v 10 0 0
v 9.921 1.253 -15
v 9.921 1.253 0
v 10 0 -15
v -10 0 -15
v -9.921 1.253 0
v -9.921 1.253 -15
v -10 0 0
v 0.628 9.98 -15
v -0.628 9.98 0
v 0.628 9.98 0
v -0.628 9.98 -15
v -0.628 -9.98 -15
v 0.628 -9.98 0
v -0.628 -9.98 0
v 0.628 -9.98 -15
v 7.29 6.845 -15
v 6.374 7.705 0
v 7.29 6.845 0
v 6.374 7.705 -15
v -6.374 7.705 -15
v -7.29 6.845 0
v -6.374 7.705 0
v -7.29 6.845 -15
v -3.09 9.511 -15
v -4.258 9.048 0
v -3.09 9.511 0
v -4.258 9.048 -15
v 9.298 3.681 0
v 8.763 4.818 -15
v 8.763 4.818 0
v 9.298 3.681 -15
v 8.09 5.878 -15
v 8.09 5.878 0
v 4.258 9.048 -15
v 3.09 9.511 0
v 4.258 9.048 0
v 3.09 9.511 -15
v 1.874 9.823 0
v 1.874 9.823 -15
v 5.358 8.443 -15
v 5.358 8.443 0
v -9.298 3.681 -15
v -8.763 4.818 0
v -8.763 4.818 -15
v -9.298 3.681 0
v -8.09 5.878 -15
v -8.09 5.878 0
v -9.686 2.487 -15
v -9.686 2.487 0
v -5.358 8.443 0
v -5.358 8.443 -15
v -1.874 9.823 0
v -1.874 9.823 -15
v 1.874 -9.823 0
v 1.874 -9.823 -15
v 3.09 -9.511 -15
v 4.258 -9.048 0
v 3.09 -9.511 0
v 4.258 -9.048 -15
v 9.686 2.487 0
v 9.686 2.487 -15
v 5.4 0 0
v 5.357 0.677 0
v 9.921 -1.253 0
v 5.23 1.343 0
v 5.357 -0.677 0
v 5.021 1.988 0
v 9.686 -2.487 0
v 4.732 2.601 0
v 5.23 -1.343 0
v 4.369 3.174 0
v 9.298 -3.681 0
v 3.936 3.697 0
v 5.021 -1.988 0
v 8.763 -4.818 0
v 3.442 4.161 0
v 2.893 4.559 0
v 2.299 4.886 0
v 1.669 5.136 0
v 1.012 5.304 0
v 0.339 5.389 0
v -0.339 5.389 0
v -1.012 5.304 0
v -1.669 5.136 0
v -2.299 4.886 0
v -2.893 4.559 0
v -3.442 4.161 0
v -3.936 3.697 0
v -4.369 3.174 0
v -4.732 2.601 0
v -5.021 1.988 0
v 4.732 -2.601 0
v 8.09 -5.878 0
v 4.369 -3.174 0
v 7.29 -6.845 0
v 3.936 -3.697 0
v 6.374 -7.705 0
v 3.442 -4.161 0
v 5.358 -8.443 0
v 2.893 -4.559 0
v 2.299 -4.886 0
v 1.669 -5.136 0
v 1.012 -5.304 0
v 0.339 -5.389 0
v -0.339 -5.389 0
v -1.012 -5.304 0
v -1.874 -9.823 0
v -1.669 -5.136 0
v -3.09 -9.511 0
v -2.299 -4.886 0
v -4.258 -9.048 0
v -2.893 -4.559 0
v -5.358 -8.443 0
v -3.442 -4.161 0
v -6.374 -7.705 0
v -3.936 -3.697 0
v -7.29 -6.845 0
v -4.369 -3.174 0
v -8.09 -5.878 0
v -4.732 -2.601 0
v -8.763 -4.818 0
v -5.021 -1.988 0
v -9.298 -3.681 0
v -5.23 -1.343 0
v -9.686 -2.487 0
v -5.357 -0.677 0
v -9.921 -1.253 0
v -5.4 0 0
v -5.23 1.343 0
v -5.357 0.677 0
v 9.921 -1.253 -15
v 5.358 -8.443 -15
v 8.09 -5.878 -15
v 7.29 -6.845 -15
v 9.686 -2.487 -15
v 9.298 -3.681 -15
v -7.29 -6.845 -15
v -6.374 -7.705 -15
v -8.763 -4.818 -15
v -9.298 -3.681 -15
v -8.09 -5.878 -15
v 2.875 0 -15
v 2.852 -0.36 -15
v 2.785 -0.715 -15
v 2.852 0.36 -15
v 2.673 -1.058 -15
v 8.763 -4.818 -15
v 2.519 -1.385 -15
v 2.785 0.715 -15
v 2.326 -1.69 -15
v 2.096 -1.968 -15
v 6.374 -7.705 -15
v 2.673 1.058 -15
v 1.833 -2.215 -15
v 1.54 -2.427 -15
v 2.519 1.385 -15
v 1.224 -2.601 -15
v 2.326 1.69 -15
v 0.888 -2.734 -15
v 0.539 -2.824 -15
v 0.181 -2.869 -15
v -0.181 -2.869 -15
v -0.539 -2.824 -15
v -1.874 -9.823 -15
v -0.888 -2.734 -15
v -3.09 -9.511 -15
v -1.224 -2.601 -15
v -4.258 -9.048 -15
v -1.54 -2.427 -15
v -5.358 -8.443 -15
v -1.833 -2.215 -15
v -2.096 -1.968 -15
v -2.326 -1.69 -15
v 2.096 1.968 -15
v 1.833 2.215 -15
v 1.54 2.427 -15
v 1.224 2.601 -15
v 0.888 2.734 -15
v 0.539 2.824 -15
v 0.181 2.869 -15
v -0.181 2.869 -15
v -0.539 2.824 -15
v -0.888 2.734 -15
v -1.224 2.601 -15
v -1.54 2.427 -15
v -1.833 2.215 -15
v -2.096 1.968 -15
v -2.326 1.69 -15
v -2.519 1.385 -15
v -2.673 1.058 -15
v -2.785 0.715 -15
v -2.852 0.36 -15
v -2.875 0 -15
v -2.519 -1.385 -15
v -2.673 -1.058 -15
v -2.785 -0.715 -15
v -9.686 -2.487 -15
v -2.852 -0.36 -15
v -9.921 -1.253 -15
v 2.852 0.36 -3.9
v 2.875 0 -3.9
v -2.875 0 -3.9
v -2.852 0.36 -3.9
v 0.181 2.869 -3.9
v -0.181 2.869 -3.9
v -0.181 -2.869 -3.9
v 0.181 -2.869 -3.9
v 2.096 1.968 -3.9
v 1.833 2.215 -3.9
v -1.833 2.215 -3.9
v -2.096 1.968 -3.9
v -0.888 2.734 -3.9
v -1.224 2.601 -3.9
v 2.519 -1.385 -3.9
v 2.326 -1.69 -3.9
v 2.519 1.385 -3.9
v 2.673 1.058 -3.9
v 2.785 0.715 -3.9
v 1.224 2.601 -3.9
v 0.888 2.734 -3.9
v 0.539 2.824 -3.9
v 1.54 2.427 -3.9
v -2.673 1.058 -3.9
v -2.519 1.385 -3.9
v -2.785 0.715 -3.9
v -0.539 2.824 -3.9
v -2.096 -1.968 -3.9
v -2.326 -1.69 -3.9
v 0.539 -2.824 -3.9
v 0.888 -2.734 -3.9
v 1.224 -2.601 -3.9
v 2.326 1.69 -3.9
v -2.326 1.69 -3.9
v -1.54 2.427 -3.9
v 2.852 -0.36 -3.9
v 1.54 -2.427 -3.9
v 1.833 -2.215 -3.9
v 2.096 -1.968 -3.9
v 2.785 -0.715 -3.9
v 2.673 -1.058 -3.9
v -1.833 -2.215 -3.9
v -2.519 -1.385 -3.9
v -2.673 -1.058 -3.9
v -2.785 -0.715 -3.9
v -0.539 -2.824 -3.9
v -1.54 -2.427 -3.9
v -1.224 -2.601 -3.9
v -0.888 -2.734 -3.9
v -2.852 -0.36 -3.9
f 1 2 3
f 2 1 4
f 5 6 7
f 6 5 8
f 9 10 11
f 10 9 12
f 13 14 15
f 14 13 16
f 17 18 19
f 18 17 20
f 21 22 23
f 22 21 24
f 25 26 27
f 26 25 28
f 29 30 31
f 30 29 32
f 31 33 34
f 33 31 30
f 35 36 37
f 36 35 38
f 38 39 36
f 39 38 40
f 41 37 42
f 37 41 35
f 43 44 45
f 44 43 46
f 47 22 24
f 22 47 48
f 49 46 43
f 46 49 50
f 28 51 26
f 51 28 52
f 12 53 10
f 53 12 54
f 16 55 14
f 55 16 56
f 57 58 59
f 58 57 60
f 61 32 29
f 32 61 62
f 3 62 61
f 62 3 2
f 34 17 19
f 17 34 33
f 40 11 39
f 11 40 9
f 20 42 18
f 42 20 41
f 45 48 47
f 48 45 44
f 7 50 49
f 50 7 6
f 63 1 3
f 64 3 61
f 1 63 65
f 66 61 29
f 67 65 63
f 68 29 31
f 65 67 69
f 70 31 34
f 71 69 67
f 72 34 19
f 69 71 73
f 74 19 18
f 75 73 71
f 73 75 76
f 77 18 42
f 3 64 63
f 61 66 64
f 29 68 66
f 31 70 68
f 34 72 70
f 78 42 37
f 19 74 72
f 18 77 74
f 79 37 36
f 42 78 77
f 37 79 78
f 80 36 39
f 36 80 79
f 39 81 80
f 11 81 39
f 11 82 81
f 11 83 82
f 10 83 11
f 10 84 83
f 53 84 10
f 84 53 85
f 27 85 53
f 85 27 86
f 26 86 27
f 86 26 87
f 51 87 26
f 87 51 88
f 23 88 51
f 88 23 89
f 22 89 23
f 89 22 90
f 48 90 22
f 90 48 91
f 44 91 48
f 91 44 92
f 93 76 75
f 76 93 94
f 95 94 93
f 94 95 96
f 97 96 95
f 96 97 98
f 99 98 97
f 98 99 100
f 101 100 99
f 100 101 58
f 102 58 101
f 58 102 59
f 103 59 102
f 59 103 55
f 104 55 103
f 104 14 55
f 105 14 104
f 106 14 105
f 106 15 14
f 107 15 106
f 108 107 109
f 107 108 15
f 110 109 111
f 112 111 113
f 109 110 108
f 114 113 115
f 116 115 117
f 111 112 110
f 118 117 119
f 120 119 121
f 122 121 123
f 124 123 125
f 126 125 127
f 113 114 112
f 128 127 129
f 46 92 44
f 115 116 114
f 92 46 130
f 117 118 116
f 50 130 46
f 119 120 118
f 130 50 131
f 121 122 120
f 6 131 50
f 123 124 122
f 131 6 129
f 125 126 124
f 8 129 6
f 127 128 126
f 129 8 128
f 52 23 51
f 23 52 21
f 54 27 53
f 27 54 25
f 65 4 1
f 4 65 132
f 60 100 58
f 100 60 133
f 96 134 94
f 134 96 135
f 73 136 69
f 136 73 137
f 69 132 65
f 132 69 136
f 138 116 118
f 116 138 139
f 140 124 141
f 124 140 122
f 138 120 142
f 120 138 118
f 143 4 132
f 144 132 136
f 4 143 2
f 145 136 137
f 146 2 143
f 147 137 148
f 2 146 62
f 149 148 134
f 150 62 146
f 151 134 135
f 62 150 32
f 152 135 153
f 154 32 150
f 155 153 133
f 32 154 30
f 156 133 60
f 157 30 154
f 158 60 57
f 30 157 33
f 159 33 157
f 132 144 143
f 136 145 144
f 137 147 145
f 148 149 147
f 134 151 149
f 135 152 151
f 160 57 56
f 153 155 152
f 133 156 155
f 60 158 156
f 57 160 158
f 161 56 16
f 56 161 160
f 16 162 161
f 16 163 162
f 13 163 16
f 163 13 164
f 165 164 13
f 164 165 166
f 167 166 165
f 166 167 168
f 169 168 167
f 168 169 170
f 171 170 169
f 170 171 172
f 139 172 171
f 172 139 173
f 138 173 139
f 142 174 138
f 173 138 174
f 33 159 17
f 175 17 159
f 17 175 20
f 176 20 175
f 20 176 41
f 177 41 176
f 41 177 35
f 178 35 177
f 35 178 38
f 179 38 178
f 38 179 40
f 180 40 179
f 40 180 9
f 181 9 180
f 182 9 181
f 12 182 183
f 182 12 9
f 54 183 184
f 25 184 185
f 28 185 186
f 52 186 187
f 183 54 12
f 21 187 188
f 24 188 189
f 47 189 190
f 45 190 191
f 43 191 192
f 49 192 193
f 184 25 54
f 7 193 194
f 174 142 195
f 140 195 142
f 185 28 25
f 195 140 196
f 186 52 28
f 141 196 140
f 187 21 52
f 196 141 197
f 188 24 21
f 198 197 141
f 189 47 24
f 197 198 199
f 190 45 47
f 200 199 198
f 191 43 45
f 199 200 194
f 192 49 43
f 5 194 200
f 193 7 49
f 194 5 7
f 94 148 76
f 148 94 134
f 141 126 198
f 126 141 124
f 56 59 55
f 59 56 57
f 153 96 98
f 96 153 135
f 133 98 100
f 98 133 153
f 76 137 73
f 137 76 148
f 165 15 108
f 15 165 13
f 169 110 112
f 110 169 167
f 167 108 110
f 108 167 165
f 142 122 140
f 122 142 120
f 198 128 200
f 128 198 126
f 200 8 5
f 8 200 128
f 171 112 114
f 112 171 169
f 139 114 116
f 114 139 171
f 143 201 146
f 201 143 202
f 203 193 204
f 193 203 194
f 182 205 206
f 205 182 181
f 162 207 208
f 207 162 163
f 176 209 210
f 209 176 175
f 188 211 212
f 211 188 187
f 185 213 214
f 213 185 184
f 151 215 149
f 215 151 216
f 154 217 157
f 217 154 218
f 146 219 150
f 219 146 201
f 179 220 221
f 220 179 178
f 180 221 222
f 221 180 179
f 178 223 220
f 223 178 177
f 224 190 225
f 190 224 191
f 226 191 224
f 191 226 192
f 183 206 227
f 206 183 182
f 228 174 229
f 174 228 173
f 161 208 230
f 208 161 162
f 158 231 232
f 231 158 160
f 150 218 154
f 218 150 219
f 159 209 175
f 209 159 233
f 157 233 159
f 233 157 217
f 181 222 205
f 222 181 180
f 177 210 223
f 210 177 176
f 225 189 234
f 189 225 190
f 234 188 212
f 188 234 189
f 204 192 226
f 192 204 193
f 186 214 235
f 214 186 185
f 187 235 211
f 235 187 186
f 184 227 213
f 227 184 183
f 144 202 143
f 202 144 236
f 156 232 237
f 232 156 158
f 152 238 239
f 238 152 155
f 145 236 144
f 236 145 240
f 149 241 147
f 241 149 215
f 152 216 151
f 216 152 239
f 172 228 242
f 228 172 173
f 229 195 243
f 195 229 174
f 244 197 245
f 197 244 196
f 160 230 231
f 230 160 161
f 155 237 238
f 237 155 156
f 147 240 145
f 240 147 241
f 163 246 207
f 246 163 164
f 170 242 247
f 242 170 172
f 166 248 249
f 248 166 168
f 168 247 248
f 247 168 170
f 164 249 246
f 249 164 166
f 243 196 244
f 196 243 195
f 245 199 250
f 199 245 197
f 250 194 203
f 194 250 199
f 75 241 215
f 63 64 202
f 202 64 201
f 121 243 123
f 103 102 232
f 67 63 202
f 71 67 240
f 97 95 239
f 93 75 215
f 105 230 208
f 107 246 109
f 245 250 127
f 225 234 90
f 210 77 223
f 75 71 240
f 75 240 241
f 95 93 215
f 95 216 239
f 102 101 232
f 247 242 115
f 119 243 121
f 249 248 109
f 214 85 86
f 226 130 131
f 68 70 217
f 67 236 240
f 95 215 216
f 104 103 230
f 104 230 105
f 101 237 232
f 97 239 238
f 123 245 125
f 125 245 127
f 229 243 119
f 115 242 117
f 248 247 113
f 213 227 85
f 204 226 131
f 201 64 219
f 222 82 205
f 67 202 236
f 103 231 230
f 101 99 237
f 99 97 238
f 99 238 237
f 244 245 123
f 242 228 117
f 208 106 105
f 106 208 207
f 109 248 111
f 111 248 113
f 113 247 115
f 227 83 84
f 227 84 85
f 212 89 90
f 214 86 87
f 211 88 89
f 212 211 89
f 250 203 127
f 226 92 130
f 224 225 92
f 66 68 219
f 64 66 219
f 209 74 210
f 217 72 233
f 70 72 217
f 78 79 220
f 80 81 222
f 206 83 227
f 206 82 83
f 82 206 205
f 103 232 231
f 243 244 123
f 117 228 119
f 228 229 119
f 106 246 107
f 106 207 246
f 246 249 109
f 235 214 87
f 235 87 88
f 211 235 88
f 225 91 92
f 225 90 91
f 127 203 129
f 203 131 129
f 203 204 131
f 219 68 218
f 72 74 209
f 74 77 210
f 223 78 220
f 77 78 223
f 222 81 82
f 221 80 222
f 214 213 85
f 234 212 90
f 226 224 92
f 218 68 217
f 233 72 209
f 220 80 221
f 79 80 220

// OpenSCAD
$fn = 50;


difference() {
	union() {
		translate(v = [0, 0, -15.0000000000]) {
			cylinder(h = 15, r = 10.0000000000);
		}
		#translate(v = [0, 0, -18.0000000000]) {
			cylinder(h = 18, r = 2.8750000000);
		}
	}
	union() {
		translate(v = [0, 0, 0]) {
			rotate(a = [0, 0, 0]) {
				difference() {
					union() {
						translate(v = [0, 0, -18.0000000000]) {
							cylinder(h = 18, r = 2.6000000000);
						}
						translate(v = [0, 0, -3.9000000000]) {
							cylinder(h = 3.9000000000, r1 = 2.8750000000, r2 = 5.4000000000);
						}
						translate(v = [0, 0, -18.0000000000]) {
							cylinder(h = 18, r = 2.8750000000);
						}
						translate(v = [0, 0, -18.0000000000]) {
							cylinder(h = 18, r = 2.6000000000);
						}
					}
					union();
				}
			}
		}
	}
}
